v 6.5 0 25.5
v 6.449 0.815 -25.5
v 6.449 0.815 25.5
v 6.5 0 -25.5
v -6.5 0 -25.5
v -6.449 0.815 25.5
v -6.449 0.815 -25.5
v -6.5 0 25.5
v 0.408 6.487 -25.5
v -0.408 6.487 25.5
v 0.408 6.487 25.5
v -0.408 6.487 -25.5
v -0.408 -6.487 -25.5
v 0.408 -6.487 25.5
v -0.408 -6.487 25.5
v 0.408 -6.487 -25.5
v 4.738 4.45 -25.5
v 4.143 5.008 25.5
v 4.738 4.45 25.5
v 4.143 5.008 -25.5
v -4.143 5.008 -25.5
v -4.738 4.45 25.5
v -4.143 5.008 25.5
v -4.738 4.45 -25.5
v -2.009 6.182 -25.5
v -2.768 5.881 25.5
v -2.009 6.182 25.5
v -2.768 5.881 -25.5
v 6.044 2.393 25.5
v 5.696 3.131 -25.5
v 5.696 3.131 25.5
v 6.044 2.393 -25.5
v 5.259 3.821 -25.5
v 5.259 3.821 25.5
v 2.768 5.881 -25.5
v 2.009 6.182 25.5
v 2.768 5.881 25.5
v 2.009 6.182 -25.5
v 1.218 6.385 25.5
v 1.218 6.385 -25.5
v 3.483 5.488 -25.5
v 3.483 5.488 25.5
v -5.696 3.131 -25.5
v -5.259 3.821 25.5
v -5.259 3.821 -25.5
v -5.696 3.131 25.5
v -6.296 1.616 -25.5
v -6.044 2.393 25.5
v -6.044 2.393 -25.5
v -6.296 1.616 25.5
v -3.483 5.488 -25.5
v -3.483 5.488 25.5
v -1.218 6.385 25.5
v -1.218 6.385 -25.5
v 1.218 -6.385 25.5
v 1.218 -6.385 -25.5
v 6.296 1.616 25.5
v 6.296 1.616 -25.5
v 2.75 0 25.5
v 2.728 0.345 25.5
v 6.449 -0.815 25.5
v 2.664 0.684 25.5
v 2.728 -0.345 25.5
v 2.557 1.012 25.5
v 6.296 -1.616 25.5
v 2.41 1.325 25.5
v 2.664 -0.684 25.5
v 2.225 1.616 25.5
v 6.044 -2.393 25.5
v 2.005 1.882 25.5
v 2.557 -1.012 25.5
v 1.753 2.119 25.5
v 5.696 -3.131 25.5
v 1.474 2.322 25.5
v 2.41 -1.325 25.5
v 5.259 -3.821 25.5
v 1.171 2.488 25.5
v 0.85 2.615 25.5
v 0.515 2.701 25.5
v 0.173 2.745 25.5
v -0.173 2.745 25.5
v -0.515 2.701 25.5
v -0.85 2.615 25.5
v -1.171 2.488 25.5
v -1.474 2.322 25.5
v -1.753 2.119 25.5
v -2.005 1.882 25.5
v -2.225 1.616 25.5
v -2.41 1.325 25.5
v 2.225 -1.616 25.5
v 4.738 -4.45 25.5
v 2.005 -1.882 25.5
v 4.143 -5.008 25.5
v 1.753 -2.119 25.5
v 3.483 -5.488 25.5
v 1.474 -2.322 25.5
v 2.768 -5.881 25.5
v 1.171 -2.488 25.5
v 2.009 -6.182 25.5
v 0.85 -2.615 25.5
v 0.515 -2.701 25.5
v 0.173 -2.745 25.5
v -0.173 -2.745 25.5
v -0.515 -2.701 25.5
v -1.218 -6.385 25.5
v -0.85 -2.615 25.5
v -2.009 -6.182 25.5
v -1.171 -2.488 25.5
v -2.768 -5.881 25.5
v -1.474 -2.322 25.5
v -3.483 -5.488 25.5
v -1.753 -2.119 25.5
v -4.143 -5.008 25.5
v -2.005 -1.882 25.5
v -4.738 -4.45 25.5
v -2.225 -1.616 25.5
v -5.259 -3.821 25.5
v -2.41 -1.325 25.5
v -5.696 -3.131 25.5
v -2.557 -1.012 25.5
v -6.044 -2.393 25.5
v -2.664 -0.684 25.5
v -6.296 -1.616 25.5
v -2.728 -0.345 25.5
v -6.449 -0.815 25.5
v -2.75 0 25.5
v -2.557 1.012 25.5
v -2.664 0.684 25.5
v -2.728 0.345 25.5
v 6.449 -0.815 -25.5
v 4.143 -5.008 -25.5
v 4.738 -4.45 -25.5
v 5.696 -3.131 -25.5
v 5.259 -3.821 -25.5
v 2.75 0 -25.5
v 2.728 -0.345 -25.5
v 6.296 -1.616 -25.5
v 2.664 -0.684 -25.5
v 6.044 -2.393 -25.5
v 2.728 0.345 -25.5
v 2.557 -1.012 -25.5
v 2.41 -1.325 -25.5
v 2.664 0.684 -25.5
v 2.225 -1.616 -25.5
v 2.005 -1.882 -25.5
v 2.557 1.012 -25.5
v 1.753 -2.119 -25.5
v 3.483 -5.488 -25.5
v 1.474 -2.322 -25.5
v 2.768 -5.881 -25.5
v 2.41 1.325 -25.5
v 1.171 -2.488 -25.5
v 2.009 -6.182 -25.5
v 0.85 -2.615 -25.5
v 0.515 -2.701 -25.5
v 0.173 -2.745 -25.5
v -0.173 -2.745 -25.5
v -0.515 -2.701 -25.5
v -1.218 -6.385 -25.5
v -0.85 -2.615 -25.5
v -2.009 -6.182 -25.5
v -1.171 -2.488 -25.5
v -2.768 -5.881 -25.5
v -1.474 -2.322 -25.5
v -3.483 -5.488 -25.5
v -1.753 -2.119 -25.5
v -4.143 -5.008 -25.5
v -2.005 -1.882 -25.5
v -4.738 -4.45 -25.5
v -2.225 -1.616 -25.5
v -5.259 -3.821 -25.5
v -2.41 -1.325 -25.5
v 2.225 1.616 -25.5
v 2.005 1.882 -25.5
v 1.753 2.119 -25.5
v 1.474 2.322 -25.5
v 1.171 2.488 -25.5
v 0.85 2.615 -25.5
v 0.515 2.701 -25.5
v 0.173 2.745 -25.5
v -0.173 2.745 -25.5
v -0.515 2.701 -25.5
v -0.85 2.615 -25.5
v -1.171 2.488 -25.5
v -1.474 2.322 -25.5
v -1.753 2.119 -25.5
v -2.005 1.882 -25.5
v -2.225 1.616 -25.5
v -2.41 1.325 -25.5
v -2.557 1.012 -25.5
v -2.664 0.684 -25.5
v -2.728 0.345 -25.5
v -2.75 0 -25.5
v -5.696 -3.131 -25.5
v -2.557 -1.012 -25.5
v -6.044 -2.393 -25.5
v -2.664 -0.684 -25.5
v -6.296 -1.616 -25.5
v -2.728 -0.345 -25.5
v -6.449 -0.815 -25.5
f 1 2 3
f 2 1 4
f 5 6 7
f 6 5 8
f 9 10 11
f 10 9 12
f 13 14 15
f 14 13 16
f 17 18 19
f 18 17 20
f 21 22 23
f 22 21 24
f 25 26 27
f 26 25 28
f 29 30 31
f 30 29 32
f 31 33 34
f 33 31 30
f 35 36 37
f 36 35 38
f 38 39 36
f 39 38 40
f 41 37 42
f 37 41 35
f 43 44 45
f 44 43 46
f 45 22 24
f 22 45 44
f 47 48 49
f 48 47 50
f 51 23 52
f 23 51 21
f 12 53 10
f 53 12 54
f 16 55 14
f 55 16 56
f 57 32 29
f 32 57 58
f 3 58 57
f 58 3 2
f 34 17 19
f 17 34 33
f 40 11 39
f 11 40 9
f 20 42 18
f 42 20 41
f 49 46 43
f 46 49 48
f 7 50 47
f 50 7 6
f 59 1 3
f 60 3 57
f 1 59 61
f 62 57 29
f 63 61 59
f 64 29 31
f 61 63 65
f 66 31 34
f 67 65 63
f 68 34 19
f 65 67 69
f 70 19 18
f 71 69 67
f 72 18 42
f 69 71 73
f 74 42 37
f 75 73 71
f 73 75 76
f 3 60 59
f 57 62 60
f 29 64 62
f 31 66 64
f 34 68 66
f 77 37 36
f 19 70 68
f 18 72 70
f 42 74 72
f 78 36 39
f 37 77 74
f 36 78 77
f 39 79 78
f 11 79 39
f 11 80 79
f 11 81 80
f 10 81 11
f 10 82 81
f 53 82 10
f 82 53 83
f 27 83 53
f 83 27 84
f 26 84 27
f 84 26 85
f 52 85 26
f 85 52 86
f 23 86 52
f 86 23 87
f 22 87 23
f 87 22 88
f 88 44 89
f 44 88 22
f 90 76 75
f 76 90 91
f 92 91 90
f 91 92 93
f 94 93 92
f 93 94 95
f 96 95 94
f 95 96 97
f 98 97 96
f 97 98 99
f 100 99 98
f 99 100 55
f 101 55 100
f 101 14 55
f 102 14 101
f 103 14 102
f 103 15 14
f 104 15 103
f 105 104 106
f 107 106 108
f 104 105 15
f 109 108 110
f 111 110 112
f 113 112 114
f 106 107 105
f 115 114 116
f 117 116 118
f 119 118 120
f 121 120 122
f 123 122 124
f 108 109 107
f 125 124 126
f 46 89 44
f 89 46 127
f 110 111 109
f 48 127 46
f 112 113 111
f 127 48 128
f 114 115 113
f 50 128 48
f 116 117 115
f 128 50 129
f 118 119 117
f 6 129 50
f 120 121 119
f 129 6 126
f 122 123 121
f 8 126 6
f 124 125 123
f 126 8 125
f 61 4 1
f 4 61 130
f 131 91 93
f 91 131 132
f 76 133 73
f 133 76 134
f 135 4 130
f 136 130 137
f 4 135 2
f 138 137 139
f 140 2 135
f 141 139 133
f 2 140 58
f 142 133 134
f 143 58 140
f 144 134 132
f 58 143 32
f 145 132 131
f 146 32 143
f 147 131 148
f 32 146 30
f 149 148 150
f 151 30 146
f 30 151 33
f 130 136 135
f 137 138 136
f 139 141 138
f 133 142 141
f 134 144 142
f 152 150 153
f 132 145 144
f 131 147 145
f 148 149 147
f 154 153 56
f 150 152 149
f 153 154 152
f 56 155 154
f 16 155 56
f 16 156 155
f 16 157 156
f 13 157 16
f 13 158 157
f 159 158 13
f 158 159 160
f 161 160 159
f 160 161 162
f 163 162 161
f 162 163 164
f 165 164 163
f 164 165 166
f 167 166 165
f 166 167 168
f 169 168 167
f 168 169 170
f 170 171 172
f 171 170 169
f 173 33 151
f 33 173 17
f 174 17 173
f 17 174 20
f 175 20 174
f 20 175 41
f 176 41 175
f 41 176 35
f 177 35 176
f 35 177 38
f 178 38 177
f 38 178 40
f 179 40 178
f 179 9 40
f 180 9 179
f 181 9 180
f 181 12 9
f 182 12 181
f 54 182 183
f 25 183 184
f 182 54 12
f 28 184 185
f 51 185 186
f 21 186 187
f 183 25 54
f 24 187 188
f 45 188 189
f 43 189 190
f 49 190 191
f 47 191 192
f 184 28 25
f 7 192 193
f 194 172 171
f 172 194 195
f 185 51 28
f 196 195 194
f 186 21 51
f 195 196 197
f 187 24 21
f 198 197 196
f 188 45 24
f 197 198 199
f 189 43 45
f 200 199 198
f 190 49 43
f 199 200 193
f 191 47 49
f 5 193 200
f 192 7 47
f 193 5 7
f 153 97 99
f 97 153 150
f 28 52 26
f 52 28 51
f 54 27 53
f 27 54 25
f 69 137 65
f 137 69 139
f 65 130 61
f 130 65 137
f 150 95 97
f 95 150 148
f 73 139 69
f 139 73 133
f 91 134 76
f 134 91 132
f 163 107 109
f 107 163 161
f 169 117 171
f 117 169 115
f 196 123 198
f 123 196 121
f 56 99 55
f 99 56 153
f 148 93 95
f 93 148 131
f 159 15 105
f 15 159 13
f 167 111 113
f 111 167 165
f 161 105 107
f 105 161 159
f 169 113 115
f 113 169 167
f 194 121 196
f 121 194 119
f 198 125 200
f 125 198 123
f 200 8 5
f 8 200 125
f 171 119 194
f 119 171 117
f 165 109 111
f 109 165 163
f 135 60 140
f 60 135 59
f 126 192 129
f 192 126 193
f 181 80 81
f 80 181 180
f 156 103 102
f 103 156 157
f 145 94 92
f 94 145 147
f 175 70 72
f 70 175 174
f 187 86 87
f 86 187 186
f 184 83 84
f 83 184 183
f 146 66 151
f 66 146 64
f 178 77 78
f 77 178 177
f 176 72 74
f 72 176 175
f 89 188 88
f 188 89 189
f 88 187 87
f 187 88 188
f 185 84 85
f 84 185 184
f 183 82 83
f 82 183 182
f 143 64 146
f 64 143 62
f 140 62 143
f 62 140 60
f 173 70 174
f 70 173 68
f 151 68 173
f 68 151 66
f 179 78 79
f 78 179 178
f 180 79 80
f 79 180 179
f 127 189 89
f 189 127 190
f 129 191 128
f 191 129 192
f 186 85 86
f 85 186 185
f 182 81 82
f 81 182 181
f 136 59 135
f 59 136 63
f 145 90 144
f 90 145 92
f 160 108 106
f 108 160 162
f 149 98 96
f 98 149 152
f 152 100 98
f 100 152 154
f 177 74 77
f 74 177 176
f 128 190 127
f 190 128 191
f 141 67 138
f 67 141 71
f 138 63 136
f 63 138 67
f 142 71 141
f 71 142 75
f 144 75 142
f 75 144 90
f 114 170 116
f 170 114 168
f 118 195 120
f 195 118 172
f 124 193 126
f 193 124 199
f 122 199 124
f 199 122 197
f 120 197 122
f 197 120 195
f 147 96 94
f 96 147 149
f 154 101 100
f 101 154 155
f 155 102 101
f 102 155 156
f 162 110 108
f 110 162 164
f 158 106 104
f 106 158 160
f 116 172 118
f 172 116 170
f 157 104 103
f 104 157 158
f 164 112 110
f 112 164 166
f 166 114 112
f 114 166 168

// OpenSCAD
$fn = 50;


difference() {
	union() {
		translate(v = [0, 0, -25.5000000000]) {
			cylinder(h = 51, r = 6.5000000000);
		}
	}
	union() {
		translate(v = [0, 0, -100.0000000000]) {
			cylinder(h = 200, r = 2.7500000000);
		}
	}
}
